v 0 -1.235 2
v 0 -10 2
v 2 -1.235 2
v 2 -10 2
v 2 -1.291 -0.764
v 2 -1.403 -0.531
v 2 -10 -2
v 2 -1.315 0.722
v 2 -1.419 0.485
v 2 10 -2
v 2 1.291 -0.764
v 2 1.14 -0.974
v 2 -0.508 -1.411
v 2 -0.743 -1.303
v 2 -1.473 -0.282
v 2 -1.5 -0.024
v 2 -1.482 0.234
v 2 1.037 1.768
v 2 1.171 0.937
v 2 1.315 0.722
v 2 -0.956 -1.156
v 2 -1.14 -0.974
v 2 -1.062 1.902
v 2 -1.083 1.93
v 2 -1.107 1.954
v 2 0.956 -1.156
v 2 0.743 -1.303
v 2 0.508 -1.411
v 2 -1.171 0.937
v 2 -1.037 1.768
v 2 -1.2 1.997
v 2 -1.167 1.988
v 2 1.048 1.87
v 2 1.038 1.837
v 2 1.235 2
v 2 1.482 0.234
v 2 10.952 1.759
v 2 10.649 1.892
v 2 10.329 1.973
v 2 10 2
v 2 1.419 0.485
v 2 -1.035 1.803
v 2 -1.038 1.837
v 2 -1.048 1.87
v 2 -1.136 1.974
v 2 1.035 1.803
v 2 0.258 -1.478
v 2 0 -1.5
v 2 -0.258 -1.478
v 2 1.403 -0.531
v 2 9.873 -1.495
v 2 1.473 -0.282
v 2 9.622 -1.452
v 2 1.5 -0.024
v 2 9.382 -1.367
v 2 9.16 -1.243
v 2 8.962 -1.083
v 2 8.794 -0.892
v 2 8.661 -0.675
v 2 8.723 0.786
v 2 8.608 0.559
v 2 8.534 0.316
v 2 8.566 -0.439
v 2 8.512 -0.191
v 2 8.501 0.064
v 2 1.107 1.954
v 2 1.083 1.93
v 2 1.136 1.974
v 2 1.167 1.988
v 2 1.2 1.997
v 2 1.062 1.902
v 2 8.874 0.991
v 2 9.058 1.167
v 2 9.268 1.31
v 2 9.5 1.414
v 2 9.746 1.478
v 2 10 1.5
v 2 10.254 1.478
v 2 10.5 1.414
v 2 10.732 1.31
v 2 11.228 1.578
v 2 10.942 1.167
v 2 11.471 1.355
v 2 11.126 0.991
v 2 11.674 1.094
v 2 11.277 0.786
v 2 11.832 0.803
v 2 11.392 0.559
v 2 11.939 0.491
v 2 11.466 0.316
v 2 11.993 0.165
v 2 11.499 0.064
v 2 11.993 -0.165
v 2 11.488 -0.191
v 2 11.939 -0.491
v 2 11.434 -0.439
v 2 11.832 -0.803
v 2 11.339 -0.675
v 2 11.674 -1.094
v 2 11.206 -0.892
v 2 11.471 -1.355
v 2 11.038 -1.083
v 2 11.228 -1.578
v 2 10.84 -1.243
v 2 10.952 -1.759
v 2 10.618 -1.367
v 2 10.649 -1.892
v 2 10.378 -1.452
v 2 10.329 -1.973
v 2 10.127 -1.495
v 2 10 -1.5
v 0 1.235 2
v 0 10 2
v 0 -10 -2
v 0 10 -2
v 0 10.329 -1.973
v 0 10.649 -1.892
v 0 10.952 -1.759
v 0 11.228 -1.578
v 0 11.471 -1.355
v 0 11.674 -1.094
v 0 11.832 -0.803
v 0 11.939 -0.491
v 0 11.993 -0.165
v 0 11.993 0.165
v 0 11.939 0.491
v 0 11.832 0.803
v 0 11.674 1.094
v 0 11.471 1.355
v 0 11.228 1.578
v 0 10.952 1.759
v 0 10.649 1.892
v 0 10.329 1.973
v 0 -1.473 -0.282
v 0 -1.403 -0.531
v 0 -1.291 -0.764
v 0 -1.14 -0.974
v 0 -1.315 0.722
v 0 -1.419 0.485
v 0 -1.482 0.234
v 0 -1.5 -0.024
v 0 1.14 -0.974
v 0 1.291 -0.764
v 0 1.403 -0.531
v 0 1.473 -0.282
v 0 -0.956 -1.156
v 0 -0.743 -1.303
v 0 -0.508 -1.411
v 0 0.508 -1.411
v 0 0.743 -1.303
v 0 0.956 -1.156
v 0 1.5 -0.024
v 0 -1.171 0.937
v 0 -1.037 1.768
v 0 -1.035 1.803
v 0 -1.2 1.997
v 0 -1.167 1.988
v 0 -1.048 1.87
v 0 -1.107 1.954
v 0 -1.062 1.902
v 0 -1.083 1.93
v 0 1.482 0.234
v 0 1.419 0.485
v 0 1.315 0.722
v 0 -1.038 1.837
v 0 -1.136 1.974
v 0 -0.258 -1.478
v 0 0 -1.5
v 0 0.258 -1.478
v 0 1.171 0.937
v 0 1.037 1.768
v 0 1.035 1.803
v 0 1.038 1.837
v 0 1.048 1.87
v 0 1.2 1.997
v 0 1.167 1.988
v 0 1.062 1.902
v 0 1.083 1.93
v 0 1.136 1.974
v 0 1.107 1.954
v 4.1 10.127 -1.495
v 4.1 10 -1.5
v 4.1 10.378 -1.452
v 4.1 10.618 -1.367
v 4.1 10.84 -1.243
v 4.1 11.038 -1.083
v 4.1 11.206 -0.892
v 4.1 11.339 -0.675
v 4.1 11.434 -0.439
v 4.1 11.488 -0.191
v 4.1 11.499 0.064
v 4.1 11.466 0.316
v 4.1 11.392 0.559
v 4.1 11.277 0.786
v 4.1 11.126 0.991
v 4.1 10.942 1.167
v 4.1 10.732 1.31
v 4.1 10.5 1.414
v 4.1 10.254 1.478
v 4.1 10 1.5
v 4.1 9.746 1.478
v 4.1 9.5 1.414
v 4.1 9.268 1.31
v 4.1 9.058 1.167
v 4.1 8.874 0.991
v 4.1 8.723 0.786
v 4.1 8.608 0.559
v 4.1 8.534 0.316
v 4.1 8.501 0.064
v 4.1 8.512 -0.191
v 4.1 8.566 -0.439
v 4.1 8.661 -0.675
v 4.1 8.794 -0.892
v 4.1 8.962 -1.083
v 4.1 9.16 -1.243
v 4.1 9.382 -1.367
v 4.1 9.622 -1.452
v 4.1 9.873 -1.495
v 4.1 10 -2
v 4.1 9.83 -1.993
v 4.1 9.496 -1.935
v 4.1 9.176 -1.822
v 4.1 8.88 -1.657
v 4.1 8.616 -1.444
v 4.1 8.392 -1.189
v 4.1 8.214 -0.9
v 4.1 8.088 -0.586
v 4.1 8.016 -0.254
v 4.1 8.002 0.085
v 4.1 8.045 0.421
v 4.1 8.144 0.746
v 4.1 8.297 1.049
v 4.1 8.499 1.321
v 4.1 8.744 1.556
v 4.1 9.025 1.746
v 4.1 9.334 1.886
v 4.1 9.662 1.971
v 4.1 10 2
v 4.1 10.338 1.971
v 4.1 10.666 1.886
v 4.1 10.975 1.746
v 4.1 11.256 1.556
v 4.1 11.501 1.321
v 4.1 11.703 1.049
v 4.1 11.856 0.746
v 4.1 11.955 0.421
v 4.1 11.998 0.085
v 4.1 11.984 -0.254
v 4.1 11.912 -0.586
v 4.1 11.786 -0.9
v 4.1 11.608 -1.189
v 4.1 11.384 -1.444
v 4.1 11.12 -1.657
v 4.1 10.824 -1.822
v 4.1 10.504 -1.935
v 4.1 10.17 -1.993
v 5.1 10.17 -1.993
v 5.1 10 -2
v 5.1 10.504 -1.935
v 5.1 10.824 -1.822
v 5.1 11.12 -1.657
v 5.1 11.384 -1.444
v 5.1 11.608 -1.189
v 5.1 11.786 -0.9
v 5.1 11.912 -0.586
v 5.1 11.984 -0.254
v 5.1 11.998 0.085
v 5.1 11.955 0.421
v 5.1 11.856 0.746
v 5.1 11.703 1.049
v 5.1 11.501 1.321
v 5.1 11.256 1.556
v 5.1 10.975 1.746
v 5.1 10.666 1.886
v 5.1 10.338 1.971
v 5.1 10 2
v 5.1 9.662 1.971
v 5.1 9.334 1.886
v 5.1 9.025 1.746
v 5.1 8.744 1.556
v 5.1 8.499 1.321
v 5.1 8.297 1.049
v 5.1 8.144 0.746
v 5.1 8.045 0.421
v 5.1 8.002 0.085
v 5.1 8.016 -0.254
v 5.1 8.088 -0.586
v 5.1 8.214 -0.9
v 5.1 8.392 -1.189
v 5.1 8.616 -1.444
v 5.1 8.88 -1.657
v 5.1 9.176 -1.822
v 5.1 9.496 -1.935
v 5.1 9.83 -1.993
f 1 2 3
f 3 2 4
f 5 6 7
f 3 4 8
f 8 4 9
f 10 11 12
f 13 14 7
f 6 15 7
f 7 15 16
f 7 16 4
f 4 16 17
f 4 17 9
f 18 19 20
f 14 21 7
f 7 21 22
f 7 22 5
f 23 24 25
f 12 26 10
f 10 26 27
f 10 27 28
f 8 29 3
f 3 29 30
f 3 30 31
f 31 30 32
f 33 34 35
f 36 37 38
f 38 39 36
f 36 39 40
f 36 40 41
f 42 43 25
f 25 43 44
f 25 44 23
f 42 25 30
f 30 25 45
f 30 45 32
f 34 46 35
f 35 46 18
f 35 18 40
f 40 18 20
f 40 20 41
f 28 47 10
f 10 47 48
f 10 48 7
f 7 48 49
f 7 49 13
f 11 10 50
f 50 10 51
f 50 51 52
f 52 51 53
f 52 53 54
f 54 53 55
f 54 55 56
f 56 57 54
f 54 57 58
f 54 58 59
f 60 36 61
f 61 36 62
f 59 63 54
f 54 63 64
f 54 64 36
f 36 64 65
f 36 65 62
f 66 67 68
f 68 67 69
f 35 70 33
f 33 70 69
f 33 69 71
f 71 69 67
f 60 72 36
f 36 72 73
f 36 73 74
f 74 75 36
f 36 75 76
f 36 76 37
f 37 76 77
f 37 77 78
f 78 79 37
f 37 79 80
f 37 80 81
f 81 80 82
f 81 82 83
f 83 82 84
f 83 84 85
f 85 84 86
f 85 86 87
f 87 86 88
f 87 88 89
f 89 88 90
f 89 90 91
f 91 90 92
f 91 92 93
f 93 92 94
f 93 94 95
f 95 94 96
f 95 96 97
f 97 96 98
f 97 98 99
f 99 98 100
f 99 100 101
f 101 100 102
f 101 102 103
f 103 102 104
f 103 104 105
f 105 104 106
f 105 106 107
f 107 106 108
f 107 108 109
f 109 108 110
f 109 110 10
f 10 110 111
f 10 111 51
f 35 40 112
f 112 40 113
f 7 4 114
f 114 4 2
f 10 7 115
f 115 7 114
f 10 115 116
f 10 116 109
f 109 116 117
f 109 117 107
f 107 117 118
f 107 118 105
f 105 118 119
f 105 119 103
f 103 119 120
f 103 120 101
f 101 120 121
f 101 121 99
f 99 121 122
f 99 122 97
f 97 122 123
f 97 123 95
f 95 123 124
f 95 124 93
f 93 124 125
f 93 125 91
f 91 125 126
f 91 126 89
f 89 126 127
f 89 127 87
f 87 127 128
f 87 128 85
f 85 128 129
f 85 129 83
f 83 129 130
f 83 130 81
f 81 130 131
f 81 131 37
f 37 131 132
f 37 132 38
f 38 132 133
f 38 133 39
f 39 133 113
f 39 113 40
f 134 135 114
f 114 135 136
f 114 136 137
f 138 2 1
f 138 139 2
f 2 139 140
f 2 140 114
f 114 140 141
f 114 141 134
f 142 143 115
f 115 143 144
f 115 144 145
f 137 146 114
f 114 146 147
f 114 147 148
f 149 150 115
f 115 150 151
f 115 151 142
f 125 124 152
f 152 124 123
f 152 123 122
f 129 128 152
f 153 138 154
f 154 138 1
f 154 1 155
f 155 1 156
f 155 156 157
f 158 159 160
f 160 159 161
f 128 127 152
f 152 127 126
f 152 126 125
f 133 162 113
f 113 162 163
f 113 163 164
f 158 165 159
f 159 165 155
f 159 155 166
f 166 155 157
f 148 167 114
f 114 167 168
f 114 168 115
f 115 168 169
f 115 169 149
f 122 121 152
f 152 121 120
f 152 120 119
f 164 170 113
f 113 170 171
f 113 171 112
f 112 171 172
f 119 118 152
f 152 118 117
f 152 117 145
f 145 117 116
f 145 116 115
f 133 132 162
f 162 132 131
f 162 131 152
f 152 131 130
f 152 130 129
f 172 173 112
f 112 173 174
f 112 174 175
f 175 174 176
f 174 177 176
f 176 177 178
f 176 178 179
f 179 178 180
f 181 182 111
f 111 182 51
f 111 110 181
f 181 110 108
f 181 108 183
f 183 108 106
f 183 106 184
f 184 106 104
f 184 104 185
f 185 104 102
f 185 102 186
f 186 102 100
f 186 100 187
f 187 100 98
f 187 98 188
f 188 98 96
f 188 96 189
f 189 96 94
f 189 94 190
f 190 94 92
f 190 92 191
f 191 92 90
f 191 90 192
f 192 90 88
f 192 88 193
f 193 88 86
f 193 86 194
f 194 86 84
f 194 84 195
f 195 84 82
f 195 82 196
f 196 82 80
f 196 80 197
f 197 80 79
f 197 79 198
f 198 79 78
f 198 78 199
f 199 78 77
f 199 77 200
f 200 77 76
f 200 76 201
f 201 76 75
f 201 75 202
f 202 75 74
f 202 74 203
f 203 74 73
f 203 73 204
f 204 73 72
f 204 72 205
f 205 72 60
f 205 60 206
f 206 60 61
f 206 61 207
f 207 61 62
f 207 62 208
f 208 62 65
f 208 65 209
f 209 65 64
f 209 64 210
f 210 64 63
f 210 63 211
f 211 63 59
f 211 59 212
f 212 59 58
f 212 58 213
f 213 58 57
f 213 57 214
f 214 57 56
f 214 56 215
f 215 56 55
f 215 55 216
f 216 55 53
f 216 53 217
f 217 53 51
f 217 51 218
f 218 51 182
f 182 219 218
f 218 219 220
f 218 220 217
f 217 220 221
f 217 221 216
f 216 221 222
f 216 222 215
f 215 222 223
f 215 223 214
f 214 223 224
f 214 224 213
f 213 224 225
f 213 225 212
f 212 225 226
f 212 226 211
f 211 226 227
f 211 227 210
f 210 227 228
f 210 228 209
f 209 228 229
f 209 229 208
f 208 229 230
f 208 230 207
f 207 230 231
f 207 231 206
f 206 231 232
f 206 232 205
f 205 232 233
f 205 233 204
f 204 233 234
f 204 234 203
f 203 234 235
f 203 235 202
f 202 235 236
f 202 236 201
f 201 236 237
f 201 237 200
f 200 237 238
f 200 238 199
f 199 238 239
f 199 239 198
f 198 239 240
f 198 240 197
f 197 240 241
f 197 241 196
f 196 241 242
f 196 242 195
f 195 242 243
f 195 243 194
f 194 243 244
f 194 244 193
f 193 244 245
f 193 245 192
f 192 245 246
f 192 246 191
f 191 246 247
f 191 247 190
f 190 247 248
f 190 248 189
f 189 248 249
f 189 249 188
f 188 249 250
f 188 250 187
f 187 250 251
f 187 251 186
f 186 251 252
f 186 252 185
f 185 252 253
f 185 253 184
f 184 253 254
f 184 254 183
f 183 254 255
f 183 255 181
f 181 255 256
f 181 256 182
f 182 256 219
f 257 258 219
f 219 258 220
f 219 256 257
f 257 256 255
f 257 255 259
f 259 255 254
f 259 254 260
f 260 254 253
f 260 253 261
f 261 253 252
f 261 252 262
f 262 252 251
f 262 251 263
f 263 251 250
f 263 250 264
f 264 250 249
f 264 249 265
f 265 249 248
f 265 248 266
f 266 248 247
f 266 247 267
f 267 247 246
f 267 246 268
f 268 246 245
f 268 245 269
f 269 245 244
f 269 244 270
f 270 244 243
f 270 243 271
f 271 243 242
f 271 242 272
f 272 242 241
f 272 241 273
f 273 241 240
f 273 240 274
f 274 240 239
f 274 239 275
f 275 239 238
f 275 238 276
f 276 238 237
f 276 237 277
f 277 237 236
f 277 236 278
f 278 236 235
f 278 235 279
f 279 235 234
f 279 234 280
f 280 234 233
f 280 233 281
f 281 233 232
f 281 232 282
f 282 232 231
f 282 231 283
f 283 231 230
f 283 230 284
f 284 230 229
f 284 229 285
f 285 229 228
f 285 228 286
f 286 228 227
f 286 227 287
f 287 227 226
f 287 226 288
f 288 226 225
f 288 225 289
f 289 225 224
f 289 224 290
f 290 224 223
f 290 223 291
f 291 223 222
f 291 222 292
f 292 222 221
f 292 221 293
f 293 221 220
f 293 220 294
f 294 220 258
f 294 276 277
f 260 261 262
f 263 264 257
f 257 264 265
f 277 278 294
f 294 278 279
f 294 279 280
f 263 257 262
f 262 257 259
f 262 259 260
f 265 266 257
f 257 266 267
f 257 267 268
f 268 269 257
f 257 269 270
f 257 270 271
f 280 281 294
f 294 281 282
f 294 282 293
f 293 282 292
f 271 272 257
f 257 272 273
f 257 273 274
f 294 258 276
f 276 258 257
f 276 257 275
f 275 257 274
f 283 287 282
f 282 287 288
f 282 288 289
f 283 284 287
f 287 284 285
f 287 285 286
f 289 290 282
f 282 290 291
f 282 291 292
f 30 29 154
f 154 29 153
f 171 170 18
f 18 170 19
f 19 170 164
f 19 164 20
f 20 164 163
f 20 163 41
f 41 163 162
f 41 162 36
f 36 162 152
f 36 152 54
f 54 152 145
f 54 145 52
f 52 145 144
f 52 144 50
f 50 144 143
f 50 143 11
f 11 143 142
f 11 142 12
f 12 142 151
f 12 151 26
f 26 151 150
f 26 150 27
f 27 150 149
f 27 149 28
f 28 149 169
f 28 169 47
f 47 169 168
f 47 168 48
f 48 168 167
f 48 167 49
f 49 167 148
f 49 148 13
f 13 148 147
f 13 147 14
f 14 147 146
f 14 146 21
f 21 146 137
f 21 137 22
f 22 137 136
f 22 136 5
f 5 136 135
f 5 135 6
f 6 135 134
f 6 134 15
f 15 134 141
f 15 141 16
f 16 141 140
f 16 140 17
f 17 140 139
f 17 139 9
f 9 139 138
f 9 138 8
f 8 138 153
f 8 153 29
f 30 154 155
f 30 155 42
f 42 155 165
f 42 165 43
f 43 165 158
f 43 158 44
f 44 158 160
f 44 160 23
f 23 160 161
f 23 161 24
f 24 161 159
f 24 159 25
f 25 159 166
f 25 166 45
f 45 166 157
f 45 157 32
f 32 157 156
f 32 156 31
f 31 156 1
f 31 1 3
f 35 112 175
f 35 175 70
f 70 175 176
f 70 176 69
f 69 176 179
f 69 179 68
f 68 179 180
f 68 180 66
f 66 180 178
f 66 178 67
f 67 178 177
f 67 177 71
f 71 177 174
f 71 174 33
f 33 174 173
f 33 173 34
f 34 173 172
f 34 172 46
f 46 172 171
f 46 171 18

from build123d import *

# Parameters (mm, degrees)
BASE_DEPTH         = 2
ESQUISSE2_R        = 1.5
BOSS_FIX_DEPTH     = 2.1
ESQUISSE3_R        = 2
BOSS_BLOCAGE_DEPTH = 1
VIDE_TIGE_DEPTH    = 2
CONGE_TIGE_R       = 0.2


with BuildPart() as part:
    # Esquisse1 → BASE (new body)
    with BuildSketch(Plane(origin=(0, 0, 0), x_dir=(0, 0, -1), z_dir=(1, 0, 0))):
        with BuildLine():
            Line((2, 10), (2, -10))
            Line((2, -10), (-2, -10))
            Line((-2, -10), (-2, 10))
            ThreePointArc((-2, 10), (0, 12), (2, 10))
        make_face()
    extrude(amount=BASE_DEPTH)

    # Esquisse2 → BOSS FIX (add)
    with BuildSketch(Plane(origin=(2, 0, 0), x_dir=(0, 0, -1), z_dir=(1, 0, 0))):
        with Locations((0, 10)):
            Circle(ESQUISSE2_R)
    extrude(amount=BOSS_FIX_DEPTH)

    # Esquisse3 → BOSS BLOCAGE (add)
    with BuildSketch(Plane(origin=(4.1, 0, 0), x_dir=(0, 0, -1), z_dir=(1, 0, 0))):
        with Locations((0, 10)):
            Circle(ESQUISSE3_R)
    extrude(amount=BOSS_BLOCAGE_DEPTH)

    # Esquisse4 → VIDE TIGE (cut)
    with BuildSketch(Plane.ZY):
        with BuildLine():
            Line((2, 1), (0.937042571, 1.171303214))
            ThreePointArc((0.937042571, 1.171303214), (-1.5, 0), (0.937042571, -1.171303214))
            Line((0.937042571, -1.171303214), (2, -1))
            Line((2, -1), (2, 1))
        make_face()
    extrude(amount=-VIDE_TIGE_DEPTH, mode=Mode.SUBTRACT)

    # CONGE TIGE
    conge_tige_edges = [part.edges().sort_by_distance(p)[0] for p in [
        (1, -1, 2),
        (1, 1, 2),
    ]]
    fillet(conge_tige_edges, radius=CONGE_TIGE_R)


solid = part.part
